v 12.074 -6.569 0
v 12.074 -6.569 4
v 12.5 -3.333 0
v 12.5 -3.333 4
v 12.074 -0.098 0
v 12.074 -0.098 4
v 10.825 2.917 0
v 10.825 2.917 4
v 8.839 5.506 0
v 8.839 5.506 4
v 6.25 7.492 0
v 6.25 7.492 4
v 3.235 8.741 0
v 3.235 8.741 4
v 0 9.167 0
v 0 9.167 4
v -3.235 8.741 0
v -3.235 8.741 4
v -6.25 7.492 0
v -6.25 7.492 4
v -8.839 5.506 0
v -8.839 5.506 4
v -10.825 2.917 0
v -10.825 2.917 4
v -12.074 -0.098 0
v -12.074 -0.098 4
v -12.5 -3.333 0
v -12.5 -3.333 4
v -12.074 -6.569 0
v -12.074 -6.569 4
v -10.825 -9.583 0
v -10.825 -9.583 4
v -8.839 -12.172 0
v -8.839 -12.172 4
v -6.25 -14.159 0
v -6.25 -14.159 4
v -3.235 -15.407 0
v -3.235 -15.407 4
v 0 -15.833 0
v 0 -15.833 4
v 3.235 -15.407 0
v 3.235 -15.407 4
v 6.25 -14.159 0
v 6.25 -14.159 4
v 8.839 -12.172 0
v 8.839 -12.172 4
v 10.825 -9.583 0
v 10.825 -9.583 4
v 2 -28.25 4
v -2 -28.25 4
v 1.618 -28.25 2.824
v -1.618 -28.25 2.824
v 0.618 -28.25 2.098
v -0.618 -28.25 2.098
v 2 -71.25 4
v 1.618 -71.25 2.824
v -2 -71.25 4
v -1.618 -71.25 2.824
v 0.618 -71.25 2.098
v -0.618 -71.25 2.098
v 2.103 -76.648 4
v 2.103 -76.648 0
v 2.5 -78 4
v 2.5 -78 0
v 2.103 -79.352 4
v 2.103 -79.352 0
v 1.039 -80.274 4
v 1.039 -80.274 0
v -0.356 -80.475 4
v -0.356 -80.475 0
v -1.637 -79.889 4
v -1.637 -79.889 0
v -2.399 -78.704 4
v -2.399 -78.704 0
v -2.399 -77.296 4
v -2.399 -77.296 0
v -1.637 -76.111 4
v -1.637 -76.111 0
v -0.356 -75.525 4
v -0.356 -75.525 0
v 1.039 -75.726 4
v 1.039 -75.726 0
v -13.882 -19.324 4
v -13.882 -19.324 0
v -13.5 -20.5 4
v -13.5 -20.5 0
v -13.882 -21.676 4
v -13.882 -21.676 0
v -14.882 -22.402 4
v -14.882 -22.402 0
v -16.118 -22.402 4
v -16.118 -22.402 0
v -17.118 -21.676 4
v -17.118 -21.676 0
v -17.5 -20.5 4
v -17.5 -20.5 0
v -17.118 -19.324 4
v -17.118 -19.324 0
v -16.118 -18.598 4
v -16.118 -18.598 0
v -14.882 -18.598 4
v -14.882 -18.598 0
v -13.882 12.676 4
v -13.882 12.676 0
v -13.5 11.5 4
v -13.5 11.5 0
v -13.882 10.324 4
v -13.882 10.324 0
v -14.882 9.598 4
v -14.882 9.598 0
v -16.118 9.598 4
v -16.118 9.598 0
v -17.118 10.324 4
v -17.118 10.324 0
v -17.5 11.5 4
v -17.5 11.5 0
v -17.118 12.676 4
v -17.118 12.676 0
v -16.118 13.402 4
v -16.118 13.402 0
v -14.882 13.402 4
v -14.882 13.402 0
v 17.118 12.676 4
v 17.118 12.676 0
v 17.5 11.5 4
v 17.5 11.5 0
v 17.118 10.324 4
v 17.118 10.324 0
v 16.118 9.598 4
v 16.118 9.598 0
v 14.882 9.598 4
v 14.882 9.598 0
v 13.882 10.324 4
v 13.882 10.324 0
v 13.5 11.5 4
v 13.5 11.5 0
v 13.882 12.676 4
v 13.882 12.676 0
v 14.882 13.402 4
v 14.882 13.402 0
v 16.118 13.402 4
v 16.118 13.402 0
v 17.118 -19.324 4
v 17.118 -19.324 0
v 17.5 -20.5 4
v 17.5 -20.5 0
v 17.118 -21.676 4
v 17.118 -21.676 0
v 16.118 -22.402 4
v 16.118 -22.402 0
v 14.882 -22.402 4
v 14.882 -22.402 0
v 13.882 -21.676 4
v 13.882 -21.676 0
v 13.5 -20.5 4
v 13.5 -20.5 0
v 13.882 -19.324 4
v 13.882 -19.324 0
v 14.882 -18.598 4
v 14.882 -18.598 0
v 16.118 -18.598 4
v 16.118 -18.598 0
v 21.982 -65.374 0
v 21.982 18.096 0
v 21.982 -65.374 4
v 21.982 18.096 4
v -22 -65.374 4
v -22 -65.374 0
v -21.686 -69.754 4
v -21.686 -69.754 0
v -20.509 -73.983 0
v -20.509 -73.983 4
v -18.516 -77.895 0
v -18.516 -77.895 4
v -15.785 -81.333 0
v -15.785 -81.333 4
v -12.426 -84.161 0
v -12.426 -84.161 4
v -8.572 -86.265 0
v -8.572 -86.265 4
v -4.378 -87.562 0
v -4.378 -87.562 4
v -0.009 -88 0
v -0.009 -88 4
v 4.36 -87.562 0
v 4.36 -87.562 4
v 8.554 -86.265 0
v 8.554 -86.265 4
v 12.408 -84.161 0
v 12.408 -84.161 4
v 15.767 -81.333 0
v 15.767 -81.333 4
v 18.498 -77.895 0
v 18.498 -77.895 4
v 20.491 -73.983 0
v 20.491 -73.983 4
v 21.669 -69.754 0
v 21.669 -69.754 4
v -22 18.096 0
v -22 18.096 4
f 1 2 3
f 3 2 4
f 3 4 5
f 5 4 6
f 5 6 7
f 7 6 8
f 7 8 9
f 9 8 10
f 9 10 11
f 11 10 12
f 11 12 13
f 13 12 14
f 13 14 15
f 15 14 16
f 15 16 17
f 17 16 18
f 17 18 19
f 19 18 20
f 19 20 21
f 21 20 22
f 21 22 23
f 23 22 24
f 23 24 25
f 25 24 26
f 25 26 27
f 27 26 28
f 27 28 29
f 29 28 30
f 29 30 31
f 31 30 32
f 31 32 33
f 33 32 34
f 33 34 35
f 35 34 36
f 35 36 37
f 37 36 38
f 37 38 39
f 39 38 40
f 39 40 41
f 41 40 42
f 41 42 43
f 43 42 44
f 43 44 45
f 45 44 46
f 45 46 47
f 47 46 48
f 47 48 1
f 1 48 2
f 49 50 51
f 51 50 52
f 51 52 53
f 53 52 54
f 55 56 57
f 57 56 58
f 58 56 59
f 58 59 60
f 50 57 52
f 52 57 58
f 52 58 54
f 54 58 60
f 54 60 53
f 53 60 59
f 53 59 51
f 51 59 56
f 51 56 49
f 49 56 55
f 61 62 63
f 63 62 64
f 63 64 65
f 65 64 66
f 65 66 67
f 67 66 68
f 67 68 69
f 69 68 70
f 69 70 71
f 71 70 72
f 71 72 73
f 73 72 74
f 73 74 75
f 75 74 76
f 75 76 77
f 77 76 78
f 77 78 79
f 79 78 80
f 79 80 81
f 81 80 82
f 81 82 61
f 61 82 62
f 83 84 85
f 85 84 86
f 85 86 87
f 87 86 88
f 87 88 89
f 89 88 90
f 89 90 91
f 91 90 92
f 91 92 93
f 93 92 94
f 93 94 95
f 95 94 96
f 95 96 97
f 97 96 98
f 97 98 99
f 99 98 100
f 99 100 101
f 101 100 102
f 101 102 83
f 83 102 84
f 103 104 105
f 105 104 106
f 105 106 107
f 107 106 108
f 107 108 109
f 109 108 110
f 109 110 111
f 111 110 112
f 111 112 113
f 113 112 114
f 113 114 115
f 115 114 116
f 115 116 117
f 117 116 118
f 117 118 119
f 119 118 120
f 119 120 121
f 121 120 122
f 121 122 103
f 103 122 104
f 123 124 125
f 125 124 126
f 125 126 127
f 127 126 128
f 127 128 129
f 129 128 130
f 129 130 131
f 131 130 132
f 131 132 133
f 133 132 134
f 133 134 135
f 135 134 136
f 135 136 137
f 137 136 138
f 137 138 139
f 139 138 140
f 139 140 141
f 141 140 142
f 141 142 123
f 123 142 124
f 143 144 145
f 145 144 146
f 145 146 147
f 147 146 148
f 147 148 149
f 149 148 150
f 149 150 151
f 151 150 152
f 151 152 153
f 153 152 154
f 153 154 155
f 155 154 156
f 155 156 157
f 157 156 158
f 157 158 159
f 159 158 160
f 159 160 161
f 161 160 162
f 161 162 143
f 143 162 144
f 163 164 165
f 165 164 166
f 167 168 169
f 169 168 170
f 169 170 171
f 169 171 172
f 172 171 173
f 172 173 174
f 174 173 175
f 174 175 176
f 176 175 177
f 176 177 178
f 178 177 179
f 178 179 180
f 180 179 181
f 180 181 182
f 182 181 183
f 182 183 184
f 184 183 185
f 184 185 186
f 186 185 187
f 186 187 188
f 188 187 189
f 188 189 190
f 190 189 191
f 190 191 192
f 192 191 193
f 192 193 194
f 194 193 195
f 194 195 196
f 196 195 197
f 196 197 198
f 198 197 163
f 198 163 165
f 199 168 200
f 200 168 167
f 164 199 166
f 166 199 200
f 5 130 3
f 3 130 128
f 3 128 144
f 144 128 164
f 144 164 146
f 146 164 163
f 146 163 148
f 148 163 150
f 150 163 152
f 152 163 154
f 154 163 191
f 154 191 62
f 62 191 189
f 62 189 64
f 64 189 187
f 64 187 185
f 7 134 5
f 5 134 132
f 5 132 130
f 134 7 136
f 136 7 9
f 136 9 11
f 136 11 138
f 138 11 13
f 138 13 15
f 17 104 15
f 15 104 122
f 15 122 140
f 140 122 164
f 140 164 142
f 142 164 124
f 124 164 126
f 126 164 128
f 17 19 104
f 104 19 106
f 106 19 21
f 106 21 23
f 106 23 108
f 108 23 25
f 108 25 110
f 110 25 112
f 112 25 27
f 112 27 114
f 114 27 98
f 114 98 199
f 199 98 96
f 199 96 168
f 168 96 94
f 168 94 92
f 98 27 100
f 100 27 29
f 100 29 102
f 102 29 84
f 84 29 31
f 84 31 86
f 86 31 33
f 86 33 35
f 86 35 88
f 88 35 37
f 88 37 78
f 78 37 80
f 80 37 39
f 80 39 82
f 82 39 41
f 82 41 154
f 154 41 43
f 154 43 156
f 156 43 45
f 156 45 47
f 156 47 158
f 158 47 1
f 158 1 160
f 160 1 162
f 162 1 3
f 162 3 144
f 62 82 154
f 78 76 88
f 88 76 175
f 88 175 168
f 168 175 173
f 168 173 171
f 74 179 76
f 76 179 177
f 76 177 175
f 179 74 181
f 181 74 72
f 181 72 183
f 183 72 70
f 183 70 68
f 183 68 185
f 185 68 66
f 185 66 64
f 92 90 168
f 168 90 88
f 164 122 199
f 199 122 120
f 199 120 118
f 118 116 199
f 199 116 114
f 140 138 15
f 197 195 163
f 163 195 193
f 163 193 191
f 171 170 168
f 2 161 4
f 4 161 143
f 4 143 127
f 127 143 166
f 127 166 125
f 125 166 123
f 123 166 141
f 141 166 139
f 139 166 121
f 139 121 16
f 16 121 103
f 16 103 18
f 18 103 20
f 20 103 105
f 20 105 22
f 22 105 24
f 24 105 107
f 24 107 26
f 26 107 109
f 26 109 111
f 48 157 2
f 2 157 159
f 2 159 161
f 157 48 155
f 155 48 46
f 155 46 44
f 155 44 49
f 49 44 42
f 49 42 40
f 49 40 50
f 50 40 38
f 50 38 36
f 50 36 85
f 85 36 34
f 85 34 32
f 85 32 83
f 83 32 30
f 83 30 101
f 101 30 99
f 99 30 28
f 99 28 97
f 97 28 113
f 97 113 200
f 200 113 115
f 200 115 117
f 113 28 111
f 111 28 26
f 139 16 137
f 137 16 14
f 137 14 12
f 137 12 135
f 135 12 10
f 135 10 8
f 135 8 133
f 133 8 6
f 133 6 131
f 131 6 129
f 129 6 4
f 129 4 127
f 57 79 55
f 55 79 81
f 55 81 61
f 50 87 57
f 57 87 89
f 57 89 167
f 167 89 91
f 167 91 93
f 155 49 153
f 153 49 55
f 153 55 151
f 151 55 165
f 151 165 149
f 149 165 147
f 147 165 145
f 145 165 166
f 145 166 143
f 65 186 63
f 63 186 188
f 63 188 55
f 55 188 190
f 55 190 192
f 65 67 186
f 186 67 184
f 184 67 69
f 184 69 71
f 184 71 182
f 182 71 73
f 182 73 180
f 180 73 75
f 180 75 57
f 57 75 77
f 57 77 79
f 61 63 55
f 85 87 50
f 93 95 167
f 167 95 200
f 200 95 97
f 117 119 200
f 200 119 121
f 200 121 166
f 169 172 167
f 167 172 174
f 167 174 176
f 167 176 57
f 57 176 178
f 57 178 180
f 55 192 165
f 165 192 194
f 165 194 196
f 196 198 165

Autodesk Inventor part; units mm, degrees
ref_plane "YZ Plane" through (0, 0, 0) normal (1, 0, 0) x (0, 1, 0)
ref_plane "XZ Plane" through (0, 0, 0) normal (0, 1, 0) x (-1, 0, 0)
ref_plane "XY Plane" through (0, 0, 0) normal (0, 0, 1) x (1, 0, 0)
sketch "Sketch1" plane through (0, 0, 0) normal (0, 0, 1) x (1, 0, 0)
  line L0 (-22, 18.0955) -> (21.9822, 18.0955)
  line L1 (21.9822, 18.0955) -> (21.9822, -66)
  line L2 (-22, -66) -> (-22, 18.0955)
  arc A0 (-22, -65.3741) -> (21.9822, -65.3741) centre (-0.0089, -66) ccw
  point P0 (0, 0)
  dimension "d22" = 44
extrude "Base" add sketch "Sketch1" along normal blind 4
sketch "Sketch2" plane through (0, 0, 0) normal (0, 0, 1) x (1, 0, 0)
  circle A0 centre (-15.5, 11.5) radius 2
  circle A1 centre (15.5, 11.5) radius 2
  circle A2 centre (-15.5, -20.5) radius 2
  circle A3 centre (15.5, -20.5) radius 2
  point P0 (0, 0)
extrude "Mounting Holes" cut sketch "Sketch2" along normal blind 4
sketch "Sketch3" plane through (0, 0, 0) normal (0, 0, 1) x (1, 0, 0)
  circle A0 centre (0, -78) radius 2.5
  point P0 (0, 0)
  dimension "d24" = 5
extrude "Pivot Hole" cut sketch "Sketch3" along normal blind 4
ref_plane "Work Plane2" through (0, -60, 0) normal (0, 1, 0) x (-1, 0, 0)
sketch "Sketch4" plane through (0, -60, 0) normal (0, 1, 0) x (-1, 0, 0)
  circle A0 centre (0, 4) radius 2
  point P0 (0, 0)
  dimension "d14" = 4
extrude "Support Ridge" cut sketch "Sketch4" along normal blind 31.75 and the other way blind 11.25
sketch "Sketch5" plane through (0, 0, 4) normal (0, 0, 1) x (1, 0, 0)
  circle A0 centre (0, -3.3333) radius 12.5
  point P0 (0, 0)
  dimension "d19" = 25
extrude "Shaft Hole" cut sketch "Sketch5" against normal blind 4
properties part number "DispenserBrace3gallon"
